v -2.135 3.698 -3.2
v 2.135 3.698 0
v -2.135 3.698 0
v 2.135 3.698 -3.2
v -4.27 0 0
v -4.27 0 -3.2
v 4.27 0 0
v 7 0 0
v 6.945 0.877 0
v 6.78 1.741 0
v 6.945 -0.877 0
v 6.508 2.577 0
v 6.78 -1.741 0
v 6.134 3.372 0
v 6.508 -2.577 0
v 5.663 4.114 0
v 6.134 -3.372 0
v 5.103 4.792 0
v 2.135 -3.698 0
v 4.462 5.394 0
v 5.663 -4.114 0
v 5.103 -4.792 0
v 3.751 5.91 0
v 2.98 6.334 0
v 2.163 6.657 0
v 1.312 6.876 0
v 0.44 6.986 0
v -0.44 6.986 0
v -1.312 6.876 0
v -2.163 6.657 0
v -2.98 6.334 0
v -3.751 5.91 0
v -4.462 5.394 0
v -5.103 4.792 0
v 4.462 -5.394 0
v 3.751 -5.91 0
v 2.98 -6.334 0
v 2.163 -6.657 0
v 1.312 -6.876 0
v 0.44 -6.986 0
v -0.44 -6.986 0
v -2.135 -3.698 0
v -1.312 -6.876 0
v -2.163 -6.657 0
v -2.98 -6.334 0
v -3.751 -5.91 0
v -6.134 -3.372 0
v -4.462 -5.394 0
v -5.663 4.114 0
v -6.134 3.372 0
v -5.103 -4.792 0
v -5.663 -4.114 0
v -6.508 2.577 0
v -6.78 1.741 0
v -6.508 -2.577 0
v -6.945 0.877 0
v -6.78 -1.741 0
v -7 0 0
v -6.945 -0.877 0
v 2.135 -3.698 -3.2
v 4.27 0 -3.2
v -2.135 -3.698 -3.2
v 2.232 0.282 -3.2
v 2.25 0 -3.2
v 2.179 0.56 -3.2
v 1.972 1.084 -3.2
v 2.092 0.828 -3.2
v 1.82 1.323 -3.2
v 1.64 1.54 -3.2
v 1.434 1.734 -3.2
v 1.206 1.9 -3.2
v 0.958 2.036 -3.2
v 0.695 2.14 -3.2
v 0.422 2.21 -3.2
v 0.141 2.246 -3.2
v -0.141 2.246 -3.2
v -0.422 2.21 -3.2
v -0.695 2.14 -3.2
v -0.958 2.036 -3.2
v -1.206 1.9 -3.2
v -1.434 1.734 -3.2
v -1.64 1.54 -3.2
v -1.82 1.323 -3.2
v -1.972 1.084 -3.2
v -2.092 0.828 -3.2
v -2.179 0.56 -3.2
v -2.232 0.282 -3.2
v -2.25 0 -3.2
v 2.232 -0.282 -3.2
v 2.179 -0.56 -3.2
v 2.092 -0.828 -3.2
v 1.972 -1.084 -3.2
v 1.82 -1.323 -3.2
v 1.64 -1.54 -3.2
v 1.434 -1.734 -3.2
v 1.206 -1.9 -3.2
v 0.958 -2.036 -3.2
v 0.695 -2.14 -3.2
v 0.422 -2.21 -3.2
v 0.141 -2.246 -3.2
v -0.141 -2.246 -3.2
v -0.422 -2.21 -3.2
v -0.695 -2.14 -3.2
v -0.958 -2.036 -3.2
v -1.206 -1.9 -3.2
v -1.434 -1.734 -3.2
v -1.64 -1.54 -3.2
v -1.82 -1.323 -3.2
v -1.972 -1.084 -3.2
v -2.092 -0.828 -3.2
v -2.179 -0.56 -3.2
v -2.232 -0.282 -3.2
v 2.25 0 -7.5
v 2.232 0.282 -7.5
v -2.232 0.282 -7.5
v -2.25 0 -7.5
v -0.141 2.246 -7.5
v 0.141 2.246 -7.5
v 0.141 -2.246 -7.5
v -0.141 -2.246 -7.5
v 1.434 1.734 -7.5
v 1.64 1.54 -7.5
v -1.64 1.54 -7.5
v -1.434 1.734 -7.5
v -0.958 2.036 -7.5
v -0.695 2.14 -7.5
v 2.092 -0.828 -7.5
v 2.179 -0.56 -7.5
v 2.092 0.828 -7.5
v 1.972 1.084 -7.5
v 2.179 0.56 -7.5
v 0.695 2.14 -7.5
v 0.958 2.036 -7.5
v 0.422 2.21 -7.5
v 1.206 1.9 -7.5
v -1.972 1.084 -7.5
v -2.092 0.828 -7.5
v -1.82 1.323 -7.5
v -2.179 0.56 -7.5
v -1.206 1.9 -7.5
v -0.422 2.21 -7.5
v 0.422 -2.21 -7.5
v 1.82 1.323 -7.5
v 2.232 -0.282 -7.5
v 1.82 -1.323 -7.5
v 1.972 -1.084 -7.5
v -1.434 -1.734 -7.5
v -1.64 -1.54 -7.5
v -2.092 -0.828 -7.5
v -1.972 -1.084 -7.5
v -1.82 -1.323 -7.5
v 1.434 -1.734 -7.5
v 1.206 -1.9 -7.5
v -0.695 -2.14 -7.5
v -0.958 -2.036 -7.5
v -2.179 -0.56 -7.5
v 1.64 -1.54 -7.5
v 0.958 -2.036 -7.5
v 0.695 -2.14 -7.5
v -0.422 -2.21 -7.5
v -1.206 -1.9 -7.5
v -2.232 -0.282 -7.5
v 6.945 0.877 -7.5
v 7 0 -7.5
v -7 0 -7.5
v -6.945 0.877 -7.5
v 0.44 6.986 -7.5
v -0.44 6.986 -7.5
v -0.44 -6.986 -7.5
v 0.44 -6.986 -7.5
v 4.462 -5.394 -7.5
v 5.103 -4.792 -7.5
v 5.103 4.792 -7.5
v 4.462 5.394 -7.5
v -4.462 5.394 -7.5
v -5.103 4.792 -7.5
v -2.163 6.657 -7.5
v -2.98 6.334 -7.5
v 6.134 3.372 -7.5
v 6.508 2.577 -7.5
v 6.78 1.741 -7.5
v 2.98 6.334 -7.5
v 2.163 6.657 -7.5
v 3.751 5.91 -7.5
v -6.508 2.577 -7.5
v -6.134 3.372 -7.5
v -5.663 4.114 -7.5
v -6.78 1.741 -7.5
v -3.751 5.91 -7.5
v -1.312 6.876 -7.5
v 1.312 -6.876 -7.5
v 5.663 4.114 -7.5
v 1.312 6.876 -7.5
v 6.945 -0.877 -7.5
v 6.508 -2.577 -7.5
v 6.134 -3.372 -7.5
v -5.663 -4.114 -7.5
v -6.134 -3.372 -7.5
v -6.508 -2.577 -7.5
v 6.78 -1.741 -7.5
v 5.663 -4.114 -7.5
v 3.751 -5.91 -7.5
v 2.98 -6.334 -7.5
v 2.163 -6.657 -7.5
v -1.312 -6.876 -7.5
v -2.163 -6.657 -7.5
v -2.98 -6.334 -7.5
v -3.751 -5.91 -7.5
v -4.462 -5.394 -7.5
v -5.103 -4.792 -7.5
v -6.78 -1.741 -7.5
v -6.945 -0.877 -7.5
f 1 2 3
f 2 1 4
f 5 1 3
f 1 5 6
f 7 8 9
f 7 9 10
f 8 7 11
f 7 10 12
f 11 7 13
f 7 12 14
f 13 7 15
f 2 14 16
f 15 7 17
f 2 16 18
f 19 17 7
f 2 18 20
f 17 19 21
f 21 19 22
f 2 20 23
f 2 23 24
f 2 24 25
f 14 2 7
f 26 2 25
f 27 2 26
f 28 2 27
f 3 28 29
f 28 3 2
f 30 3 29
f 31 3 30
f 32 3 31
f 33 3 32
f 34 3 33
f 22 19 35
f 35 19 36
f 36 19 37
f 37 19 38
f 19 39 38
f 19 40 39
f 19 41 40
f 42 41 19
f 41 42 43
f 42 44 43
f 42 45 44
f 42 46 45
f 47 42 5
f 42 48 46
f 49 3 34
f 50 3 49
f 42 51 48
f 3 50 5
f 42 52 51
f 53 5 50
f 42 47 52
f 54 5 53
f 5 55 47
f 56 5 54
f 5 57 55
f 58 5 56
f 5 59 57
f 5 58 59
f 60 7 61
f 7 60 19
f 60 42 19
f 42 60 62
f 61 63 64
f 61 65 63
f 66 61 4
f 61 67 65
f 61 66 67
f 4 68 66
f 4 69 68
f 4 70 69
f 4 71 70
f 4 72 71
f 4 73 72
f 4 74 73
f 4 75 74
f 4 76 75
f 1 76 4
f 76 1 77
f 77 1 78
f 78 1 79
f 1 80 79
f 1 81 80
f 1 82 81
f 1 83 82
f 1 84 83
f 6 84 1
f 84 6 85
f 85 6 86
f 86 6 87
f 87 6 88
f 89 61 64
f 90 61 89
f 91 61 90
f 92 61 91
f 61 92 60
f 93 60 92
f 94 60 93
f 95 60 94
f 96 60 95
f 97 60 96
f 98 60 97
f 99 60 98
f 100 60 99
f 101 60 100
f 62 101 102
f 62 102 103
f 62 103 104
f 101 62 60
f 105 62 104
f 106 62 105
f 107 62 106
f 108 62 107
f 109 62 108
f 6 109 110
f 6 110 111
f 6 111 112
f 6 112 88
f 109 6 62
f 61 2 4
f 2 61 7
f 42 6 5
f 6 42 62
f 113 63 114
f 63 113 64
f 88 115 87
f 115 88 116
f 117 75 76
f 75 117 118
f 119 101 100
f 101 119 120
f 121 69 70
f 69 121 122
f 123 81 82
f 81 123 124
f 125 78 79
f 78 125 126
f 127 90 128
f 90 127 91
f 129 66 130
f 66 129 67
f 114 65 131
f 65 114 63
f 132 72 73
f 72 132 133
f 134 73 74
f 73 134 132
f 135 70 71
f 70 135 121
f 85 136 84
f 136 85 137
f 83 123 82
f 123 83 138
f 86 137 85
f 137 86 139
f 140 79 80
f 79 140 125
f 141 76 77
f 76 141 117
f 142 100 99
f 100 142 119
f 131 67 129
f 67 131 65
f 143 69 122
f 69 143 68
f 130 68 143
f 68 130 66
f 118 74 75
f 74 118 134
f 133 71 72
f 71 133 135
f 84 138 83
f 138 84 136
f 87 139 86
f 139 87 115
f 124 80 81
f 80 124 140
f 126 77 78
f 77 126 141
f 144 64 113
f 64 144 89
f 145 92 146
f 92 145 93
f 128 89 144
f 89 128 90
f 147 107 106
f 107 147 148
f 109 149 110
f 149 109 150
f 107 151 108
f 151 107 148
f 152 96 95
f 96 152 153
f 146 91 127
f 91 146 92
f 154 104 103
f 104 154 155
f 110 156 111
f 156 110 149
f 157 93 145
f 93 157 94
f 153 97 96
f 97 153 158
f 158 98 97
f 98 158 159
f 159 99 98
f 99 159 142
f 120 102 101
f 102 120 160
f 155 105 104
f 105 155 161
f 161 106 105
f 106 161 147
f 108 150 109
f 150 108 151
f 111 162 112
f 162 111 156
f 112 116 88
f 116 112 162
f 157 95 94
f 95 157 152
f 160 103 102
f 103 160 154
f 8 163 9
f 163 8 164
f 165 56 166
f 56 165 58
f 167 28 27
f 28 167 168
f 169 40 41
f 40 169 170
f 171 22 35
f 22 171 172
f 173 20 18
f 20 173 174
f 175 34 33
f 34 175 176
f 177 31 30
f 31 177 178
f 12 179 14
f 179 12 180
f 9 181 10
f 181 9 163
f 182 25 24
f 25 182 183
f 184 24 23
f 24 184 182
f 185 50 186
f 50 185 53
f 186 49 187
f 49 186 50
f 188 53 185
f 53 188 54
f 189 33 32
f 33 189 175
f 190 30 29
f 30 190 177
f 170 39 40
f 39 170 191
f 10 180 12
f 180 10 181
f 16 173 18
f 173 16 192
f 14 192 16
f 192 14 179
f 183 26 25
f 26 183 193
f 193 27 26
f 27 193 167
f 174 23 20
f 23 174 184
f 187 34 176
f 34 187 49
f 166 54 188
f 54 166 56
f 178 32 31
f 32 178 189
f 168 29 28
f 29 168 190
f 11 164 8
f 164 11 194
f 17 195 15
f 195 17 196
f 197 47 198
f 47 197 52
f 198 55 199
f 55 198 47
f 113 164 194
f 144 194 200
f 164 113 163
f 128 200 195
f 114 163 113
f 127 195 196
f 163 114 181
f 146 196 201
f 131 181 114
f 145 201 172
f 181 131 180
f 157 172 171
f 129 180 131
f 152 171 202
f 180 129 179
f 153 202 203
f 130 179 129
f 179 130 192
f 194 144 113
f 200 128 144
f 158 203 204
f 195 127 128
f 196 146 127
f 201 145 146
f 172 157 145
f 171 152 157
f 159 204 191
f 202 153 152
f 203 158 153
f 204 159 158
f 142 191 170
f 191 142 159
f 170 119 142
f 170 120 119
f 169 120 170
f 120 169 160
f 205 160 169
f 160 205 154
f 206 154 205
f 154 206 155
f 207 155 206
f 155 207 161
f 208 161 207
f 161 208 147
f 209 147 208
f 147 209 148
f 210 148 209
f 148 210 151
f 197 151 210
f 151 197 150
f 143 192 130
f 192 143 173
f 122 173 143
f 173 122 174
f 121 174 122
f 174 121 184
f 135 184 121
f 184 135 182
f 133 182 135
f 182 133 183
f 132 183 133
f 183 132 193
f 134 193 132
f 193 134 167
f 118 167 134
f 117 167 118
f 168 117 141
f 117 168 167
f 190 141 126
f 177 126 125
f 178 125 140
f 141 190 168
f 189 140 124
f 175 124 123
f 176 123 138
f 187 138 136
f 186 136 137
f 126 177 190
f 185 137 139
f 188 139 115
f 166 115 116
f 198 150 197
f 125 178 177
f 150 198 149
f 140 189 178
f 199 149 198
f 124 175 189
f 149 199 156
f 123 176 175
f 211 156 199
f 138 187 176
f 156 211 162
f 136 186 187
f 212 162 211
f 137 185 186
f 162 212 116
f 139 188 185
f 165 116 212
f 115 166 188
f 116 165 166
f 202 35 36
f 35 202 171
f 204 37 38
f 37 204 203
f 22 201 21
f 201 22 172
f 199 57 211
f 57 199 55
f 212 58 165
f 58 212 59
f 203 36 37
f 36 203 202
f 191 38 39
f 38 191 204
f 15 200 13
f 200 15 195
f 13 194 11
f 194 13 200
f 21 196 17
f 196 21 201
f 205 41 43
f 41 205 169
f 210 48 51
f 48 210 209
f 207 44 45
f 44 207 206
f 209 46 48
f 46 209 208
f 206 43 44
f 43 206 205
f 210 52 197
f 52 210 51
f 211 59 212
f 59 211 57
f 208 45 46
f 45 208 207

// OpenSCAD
$fn = 50;


difference() {
	union() {
		translate(v = [0, 0, -7.5000000000]) {
			cylinder(h = 7.5000000000, r = 7.0000000000);
		}
	}
	union() {
		translate(v = [0, 0, 0]) {
			rotate(a = [0, 0, 0]) {
				difference() {
					union() {
						translate(v = [0, 0, -3.2000000000]) {
							linear_extrude(height = 3.2000000000) {
								polygon(points = [[4.2698000000, 0.0000000000], [2.1349000000, 3.6977552691], [-2.1349000000, 3.6977552691], [-4.2698000000, 0.0000000000], [-2.1349000000, -3.6977552691], [2.1349000000, -3.6977552691]]);
							}
						}
					}
					union();
				}
			}
		}
		#translate(v = [0, 0, -100.0000000000]) {
			cylinder(h = 200, r = 2.2500000000);
		}
	}
}
